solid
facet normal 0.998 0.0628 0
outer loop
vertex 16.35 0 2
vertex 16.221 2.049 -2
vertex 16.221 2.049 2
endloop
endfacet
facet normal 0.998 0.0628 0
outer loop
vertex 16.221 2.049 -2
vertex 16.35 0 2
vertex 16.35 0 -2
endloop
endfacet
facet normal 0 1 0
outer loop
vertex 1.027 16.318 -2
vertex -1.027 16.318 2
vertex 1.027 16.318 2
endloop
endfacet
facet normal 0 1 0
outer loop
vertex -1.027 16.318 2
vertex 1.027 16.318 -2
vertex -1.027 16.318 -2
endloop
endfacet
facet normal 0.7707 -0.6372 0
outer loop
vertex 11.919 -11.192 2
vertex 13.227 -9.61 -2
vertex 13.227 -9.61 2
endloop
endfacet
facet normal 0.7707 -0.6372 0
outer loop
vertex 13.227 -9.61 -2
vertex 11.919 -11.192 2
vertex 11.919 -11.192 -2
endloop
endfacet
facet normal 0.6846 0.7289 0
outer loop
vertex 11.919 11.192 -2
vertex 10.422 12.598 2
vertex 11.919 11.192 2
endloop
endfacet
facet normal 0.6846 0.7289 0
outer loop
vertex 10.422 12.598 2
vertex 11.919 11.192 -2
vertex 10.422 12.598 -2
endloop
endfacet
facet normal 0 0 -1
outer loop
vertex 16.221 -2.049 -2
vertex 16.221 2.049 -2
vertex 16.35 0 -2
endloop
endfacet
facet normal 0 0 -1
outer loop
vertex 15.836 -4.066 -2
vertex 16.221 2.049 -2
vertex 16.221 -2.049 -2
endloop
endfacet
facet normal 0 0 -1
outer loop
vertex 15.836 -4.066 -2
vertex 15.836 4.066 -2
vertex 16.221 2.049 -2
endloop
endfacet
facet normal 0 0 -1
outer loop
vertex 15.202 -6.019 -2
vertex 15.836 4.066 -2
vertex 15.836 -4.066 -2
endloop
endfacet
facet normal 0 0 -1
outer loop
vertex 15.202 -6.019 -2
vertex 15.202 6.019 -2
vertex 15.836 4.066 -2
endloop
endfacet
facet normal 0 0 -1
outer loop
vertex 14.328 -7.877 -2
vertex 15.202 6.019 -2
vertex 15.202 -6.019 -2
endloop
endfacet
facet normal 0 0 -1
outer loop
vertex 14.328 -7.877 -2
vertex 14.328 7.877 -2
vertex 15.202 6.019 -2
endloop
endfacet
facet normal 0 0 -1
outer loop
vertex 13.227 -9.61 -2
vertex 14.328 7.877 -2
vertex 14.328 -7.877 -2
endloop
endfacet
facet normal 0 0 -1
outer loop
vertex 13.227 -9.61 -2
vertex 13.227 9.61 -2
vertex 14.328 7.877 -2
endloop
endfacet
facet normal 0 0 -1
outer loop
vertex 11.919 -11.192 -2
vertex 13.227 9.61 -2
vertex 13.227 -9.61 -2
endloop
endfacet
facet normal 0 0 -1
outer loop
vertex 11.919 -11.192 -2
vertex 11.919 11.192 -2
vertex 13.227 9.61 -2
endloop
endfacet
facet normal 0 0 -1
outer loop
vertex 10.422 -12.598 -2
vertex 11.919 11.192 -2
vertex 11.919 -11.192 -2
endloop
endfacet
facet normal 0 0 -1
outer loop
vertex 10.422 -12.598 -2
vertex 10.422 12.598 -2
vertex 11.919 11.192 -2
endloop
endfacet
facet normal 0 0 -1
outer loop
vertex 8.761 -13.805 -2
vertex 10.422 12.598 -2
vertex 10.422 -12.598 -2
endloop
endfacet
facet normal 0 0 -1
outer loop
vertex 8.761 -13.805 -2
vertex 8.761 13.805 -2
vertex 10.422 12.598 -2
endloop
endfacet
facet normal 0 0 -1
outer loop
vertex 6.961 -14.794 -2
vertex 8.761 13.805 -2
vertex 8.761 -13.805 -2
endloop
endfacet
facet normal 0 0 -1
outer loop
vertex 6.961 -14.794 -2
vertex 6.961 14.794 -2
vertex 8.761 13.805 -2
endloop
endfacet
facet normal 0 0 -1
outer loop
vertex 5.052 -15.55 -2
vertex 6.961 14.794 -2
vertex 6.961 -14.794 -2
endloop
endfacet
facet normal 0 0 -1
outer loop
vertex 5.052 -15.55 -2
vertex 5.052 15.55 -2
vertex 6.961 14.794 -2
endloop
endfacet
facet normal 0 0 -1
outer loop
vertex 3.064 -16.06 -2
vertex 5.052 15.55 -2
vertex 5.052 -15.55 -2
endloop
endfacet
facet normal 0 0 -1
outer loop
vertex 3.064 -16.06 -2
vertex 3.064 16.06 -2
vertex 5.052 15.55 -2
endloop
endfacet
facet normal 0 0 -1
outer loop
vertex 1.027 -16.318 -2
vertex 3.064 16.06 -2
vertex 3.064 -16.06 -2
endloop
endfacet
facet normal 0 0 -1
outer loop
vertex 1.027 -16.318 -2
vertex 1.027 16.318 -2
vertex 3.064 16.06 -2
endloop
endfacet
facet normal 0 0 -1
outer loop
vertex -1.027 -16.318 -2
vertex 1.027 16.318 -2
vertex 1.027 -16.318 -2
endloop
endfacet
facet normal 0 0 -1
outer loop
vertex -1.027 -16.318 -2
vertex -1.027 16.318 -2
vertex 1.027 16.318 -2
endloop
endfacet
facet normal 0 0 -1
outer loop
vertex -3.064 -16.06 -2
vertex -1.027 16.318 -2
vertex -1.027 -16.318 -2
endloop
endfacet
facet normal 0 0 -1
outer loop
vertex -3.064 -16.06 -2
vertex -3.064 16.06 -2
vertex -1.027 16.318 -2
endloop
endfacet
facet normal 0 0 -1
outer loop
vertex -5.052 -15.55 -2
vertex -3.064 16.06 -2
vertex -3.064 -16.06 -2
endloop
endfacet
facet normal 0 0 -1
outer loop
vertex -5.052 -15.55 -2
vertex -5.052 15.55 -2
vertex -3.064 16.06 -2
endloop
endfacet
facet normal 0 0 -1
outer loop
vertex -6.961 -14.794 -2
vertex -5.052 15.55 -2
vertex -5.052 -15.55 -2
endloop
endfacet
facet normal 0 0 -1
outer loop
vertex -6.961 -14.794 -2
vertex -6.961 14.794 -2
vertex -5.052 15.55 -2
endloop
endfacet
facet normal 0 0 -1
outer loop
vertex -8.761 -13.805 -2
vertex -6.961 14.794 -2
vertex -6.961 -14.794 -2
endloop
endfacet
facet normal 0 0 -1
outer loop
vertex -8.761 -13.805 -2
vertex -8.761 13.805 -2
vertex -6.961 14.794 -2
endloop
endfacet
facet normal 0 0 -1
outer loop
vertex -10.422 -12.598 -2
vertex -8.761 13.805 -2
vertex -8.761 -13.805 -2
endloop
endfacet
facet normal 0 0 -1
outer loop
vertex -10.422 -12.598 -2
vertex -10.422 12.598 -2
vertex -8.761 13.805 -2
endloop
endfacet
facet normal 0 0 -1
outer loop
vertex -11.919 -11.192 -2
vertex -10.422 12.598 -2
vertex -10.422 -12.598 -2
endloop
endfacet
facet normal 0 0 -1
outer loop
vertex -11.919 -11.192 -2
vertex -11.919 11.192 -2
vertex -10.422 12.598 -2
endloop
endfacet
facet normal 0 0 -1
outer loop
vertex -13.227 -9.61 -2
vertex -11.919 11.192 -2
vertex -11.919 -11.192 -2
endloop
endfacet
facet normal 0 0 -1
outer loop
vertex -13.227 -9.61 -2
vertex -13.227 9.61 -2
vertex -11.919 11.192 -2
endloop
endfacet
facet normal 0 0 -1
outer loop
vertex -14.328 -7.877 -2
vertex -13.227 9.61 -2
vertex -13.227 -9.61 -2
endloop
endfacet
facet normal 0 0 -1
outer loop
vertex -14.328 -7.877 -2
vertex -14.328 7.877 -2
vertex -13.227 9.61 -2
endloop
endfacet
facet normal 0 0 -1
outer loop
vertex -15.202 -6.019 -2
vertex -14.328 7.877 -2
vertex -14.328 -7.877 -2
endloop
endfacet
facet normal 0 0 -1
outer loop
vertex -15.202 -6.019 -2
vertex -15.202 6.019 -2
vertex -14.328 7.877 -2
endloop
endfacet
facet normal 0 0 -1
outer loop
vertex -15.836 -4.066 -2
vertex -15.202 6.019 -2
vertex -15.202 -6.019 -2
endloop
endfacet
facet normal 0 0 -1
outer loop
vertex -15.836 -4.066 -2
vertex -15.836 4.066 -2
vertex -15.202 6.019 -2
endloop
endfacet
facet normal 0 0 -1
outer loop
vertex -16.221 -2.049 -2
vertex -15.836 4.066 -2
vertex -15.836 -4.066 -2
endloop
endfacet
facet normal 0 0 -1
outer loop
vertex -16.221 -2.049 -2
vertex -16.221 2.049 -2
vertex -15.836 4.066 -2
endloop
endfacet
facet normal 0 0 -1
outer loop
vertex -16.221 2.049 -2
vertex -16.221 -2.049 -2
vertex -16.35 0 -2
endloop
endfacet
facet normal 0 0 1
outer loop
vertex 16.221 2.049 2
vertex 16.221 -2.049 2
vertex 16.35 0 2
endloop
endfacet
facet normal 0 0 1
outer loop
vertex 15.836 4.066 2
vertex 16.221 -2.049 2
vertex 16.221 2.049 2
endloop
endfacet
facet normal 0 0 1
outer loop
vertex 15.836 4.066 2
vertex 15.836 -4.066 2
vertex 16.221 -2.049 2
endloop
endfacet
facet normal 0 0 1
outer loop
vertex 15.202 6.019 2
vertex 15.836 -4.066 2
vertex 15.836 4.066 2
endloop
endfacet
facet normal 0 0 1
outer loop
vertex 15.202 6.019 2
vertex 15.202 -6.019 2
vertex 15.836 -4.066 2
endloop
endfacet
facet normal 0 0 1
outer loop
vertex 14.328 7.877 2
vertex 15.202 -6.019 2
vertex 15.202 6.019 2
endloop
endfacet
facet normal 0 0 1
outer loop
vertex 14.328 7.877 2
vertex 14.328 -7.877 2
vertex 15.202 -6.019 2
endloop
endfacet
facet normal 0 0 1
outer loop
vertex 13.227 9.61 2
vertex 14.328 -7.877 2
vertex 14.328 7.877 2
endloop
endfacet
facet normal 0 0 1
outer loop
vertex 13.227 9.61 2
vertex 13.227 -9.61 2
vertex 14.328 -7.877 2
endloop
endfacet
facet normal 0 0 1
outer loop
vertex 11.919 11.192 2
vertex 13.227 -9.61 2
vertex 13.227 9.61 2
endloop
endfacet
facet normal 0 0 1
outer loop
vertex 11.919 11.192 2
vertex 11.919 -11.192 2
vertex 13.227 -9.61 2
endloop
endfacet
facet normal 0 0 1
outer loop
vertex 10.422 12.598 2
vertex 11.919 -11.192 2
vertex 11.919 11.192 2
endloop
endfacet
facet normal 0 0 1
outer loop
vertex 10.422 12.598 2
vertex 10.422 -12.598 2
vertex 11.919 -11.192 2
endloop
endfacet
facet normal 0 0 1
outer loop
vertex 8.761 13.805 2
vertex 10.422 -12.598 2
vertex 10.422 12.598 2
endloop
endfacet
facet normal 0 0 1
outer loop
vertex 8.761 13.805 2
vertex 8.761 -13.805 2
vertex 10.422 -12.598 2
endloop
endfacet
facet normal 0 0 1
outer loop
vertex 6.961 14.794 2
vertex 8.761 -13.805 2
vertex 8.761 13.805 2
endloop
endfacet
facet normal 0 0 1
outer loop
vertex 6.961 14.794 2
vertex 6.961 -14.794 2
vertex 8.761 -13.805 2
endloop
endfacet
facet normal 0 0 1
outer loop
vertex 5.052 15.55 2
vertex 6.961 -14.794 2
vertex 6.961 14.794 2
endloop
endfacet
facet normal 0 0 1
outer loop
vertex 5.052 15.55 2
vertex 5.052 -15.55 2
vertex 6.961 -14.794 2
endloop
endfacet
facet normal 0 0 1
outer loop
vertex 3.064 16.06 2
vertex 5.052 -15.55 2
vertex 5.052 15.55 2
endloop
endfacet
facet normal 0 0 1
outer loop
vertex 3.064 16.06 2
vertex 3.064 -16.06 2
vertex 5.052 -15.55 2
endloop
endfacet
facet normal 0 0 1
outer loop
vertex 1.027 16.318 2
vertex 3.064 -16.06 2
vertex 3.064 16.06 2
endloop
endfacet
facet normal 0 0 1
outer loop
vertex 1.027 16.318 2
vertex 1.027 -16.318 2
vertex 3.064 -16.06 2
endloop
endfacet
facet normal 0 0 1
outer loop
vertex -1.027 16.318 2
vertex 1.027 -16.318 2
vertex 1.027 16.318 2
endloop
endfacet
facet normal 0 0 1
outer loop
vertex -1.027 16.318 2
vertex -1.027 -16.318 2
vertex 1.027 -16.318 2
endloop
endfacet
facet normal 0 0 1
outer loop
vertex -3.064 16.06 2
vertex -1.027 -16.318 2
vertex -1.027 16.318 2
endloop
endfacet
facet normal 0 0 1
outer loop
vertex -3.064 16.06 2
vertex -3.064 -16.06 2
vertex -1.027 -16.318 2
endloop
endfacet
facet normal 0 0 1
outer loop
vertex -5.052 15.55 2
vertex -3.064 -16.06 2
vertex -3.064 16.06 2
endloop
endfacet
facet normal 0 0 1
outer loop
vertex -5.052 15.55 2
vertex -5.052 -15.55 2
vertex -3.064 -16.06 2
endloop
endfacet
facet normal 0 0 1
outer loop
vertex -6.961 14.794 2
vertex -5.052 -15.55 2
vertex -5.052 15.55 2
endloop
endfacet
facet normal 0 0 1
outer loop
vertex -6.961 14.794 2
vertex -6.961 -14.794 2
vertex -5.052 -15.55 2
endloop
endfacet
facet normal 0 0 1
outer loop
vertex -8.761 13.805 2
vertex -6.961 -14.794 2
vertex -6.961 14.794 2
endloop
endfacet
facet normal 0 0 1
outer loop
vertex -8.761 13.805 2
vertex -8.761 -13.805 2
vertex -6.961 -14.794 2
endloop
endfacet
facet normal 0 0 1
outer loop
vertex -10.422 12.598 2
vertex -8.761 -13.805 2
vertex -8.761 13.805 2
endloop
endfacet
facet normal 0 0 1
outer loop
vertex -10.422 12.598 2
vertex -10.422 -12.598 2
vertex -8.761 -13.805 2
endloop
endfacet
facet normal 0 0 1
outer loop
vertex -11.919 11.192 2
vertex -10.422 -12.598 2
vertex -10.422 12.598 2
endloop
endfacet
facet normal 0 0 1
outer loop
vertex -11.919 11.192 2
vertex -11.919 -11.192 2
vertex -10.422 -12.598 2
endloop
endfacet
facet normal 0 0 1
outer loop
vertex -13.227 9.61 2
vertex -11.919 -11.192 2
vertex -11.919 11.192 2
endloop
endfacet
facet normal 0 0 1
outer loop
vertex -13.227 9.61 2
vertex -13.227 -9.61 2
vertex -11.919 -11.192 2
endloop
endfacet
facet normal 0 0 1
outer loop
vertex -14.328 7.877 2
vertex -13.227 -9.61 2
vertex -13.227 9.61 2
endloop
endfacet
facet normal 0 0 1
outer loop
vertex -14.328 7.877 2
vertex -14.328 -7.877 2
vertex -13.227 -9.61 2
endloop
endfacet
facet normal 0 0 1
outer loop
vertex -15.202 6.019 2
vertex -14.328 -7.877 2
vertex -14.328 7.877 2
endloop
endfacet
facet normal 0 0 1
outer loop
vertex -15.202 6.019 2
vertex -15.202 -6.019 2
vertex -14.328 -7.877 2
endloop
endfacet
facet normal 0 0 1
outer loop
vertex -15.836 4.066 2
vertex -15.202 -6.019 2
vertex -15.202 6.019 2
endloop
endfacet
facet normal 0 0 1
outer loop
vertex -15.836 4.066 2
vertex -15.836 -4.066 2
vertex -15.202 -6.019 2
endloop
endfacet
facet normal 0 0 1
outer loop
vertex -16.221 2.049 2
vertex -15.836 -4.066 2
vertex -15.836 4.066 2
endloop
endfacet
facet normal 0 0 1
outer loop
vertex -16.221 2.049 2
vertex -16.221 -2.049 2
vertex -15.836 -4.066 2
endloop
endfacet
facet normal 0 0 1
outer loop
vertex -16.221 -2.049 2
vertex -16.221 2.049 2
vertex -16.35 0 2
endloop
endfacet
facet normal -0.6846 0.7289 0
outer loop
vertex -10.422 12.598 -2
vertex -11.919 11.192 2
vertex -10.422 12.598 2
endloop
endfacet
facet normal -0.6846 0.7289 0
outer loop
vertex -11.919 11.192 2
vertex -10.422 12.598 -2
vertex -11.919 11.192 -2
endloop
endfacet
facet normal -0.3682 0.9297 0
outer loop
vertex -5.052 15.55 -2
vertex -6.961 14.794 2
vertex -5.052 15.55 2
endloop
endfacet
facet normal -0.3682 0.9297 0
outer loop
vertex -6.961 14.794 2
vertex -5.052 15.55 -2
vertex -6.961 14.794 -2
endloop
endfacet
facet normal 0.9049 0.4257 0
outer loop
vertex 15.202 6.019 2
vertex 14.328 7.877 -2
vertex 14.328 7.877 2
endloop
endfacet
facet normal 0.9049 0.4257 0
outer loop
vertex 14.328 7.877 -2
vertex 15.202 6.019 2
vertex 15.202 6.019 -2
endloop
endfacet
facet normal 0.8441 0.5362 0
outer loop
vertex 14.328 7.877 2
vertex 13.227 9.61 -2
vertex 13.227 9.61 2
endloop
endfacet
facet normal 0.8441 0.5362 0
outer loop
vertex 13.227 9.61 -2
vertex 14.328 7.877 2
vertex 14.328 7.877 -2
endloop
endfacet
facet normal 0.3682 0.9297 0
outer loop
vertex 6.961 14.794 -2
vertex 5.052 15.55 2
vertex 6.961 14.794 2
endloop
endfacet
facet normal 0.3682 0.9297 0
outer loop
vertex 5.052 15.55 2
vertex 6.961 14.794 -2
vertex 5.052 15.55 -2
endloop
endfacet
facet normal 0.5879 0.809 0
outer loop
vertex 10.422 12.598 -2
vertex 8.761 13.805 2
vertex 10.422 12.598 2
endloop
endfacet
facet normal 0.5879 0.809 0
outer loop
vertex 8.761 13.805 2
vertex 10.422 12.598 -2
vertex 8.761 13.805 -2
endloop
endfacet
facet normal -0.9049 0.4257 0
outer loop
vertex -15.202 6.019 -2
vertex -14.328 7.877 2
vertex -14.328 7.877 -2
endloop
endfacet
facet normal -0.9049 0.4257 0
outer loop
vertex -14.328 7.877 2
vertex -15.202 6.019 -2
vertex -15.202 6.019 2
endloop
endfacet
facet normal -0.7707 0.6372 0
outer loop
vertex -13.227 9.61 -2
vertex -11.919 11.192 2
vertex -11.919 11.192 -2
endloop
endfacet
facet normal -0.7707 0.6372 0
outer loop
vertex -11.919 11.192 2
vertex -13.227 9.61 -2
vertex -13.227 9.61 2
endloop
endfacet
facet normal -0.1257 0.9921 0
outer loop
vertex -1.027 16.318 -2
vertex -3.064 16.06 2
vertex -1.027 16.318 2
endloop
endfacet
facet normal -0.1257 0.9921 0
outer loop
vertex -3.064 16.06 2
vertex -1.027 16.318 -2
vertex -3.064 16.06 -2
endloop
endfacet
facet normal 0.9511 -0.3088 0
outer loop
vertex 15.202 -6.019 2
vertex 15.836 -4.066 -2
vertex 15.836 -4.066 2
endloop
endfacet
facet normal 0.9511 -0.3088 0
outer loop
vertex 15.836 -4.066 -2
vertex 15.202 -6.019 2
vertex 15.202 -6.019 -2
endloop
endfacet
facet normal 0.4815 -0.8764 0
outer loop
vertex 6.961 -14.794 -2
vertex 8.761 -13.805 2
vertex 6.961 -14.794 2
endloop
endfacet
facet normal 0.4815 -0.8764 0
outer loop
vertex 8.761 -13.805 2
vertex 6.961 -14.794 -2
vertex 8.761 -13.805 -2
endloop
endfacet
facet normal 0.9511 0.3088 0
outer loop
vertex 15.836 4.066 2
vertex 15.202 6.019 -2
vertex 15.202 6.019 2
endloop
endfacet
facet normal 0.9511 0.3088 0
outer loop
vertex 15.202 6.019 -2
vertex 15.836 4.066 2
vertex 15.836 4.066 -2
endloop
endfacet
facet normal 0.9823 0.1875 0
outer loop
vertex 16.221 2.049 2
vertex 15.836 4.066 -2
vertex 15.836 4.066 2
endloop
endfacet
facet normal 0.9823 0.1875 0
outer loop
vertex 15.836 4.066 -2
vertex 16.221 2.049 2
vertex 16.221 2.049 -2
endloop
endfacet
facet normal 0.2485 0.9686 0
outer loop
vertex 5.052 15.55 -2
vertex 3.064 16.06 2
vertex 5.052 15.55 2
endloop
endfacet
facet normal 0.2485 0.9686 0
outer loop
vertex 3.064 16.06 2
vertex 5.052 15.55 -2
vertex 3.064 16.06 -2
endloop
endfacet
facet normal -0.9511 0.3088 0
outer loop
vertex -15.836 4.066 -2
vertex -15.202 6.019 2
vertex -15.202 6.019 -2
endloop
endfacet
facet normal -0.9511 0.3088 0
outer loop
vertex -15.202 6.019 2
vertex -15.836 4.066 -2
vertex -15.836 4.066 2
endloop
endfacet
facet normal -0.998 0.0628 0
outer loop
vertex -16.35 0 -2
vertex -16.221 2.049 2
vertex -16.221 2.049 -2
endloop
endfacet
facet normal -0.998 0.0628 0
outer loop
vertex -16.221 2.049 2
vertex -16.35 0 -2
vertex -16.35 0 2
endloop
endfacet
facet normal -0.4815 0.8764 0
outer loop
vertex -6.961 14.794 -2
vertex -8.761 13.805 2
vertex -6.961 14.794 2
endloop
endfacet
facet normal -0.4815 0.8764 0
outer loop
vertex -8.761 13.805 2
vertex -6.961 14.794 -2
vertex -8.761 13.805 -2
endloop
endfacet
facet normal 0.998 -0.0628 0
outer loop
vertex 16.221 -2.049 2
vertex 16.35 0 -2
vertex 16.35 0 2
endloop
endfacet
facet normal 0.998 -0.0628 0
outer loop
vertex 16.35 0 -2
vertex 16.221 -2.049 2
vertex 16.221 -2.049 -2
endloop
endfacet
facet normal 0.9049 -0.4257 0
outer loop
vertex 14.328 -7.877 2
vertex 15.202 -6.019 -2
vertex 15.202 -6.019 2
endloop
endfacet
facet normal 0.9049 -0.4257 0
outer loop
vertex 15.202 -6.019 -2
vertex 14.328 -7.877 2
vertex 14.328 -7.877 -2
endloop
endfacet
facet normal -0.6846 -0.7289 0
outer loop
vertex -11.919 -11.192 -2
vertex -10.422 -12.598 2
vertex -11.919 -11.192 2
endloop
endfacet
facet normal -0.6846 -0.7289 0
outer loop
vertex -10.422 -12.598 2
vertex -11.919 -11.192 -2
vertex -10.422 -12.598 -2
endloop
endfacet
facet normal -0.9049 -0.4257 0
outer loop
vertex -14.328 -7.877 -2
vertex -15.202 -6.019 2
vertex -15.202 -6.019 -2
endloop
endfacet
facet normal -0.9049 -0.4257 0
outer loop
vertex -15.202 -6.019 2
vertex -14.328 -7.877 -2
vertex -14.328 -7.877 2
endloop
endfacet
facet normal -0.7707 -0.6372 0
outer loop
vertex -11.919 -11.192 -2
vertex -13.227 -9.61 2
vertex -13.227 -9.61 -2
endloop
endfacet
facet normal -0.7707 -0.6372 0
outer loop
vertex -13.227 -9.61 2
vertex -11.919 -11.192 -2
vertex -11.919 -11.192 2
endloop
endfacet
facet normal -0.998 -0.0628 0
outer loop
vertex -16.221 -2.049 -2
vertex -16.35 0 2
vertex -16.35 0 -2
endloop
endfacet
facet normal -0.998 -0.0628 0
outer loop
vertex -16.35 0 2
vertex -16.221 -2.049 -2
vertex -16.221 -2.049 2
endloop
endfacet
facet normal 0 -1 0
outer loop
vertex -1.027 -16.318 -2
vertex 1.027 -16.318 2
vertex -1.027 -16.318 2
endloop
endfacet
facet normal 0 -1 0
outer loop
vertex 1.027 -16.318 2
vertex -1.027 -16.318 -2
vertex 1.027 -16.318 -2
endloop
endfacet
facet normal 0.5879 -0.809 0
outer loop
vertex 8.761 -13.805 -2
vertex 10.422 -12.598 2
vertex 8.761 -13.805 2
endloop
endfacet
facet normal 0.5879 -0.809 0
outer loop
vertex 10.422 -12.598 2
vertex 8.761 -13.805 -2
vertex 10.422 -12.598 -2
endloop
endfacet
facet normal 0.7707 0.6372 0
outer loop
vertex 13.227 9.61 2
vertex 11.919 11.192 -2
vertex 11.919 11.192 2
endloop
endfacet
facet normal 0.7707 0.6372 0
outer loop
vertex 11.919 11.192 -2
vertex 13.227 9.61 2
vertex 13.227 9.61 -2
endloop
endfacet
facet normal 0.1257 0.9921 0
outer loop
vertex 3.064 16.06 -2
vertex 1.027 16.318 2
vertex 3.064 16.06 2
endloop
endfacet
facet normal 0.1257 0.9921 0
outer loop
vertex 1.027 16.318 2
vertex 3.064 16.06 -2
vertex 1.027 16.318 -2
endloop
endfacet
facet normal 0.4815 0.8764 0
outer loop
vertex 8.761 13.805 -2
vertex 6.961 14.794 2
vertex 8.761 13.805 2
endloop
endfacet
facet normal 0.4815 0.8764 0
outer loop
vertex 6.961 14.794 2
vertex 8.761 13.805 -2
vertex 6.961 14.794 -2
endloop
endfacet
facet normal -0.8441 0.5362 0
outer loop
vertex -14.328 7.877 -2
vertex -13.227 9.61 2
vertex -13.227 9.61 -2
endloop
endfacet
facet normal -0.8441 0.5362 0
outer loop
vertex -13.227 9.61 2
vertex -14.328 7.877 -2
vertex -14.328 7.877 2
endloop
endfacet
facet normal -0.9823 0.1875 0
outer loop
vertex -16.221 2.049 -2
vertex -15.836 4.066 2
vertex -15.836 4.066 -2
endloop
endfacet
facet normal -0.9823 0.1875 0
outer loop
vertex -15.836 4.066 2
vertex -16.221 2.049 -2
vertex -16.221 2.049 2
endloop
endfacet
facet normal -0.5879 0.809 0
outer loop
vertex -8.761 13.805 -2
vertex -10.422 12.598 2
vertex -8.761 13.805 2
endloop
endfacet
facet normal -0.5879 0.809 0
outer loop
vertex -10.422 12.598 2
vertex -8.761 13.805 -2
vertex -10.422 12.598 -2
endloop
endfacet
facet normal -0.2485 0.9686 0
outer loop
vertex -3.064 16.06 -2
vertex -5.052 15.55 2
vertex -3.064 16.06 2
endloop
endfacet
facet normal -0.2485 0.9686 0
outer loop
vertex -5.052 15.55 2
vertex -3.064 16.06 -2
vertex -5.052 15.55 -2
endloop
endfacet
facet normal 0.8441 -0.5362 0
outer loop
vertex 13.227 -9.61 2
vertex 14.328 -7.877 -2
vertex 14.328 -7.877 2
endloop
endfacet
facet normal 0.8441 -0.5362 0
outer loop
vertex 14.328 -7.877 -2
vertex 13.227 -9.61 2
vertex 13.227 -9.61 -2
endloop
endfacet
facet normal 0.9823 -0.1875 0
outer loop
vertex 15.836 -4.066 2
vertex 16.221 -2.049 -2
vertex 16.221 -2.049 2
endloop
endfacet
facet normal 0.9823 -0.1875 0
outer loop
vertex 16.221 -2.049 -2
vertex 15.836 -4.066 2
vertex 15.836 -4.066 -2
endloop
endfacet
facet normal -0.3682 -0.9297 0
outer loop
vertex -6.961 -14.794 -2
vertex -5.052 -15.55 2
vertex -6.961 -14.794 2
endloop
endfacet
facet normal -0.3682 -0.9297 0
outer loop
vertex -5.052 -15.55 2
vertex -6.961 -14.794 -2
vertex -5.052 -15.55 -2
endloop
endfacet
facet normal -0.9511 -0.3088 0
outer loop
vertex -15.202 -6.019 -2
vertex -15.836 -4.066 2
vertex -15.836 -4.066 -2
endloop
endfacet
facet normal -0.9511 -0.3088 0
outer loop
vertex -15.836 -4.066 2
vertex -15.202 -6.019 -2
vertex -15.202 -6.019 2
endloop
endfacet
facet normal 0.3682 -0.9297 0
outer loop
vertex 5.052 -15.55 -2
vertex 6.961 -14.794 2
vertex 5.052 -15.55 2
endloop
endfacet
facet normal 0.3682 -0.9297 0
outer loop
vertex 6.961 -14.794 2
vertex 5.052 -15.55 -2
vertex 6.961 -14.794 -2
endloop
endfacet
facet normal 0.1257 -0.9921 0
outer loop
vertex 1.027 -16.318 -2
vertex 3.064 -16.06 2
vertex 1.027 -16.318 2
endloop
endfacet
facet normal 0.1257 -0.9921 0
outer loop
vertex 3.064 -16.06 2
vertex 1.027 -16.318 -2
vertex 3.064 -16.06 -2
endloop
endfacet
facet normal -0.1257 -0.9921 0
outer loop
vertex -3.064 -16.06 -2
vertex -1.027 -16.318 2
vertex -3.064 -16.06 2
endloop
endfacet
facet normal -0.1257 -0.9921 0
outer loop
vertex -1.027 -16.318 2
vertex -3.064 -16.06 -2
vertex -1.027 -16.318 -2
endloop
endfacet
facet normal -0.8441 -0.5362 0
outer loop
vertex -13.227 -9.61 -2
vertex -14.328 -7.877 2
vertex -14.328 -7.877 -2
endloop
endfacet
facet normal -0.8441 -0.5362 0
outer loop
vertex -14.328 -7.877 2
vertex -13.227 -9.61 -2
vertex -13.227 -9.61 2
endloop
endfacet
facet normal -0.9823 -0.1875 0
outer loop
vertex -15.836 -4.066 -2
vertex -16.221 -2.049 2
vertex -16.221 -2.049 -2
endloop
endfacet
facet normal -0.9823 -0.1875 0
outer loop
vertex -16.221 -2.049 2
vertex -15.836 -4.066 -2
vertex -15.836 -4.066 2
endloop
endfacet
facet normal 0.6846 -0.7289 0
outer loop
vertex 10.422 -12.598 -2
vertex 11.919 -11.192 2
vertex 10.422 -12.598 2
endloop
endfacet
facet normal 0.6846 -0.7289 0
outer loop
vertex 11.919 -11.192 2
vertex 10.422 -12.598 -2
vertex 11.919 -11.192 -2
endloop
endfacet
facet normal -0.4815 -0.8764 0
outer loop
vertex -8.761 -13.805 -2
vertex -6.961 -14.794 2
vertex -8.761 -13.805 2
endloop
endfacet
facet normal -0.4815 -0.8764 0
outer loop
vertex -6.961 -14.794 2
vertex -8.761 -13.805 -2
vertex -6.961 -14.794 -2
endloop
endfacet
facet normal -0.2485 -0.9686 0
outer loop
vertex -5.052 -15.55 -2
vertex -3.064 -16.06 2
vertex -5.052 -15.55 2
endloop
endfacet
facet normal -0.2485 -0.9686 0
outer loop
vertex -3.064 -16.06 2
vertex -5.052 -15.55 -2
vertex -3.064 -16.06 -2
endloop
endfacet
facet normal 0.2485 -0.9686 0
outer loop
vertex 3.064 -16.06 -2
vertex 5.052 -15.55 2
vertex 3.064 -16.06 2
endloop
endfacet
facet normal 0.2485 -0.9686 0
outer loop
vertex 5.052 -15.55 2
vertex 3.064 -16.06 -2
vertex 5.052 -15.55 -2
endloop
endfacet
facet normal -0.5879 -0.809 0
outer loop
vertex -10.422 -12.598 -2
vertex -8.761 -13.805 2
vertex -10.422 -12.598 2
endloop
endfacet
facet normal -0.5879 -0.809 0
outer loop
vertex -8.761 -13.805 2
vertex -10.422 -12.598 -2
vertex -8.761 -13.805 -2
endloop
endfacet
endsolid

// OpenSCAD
$fn = 50;


difference() {
	union() {
		translate(v = [0, 0, -2.0000000000]) {
			cylinder(h = 4, r = 16.3500000000);
		}
	}
	union() {
		translate(v = [0, 0, -100.0000000000]) {
			cylinder(h = 200, r = 0);
		}
	}
}
